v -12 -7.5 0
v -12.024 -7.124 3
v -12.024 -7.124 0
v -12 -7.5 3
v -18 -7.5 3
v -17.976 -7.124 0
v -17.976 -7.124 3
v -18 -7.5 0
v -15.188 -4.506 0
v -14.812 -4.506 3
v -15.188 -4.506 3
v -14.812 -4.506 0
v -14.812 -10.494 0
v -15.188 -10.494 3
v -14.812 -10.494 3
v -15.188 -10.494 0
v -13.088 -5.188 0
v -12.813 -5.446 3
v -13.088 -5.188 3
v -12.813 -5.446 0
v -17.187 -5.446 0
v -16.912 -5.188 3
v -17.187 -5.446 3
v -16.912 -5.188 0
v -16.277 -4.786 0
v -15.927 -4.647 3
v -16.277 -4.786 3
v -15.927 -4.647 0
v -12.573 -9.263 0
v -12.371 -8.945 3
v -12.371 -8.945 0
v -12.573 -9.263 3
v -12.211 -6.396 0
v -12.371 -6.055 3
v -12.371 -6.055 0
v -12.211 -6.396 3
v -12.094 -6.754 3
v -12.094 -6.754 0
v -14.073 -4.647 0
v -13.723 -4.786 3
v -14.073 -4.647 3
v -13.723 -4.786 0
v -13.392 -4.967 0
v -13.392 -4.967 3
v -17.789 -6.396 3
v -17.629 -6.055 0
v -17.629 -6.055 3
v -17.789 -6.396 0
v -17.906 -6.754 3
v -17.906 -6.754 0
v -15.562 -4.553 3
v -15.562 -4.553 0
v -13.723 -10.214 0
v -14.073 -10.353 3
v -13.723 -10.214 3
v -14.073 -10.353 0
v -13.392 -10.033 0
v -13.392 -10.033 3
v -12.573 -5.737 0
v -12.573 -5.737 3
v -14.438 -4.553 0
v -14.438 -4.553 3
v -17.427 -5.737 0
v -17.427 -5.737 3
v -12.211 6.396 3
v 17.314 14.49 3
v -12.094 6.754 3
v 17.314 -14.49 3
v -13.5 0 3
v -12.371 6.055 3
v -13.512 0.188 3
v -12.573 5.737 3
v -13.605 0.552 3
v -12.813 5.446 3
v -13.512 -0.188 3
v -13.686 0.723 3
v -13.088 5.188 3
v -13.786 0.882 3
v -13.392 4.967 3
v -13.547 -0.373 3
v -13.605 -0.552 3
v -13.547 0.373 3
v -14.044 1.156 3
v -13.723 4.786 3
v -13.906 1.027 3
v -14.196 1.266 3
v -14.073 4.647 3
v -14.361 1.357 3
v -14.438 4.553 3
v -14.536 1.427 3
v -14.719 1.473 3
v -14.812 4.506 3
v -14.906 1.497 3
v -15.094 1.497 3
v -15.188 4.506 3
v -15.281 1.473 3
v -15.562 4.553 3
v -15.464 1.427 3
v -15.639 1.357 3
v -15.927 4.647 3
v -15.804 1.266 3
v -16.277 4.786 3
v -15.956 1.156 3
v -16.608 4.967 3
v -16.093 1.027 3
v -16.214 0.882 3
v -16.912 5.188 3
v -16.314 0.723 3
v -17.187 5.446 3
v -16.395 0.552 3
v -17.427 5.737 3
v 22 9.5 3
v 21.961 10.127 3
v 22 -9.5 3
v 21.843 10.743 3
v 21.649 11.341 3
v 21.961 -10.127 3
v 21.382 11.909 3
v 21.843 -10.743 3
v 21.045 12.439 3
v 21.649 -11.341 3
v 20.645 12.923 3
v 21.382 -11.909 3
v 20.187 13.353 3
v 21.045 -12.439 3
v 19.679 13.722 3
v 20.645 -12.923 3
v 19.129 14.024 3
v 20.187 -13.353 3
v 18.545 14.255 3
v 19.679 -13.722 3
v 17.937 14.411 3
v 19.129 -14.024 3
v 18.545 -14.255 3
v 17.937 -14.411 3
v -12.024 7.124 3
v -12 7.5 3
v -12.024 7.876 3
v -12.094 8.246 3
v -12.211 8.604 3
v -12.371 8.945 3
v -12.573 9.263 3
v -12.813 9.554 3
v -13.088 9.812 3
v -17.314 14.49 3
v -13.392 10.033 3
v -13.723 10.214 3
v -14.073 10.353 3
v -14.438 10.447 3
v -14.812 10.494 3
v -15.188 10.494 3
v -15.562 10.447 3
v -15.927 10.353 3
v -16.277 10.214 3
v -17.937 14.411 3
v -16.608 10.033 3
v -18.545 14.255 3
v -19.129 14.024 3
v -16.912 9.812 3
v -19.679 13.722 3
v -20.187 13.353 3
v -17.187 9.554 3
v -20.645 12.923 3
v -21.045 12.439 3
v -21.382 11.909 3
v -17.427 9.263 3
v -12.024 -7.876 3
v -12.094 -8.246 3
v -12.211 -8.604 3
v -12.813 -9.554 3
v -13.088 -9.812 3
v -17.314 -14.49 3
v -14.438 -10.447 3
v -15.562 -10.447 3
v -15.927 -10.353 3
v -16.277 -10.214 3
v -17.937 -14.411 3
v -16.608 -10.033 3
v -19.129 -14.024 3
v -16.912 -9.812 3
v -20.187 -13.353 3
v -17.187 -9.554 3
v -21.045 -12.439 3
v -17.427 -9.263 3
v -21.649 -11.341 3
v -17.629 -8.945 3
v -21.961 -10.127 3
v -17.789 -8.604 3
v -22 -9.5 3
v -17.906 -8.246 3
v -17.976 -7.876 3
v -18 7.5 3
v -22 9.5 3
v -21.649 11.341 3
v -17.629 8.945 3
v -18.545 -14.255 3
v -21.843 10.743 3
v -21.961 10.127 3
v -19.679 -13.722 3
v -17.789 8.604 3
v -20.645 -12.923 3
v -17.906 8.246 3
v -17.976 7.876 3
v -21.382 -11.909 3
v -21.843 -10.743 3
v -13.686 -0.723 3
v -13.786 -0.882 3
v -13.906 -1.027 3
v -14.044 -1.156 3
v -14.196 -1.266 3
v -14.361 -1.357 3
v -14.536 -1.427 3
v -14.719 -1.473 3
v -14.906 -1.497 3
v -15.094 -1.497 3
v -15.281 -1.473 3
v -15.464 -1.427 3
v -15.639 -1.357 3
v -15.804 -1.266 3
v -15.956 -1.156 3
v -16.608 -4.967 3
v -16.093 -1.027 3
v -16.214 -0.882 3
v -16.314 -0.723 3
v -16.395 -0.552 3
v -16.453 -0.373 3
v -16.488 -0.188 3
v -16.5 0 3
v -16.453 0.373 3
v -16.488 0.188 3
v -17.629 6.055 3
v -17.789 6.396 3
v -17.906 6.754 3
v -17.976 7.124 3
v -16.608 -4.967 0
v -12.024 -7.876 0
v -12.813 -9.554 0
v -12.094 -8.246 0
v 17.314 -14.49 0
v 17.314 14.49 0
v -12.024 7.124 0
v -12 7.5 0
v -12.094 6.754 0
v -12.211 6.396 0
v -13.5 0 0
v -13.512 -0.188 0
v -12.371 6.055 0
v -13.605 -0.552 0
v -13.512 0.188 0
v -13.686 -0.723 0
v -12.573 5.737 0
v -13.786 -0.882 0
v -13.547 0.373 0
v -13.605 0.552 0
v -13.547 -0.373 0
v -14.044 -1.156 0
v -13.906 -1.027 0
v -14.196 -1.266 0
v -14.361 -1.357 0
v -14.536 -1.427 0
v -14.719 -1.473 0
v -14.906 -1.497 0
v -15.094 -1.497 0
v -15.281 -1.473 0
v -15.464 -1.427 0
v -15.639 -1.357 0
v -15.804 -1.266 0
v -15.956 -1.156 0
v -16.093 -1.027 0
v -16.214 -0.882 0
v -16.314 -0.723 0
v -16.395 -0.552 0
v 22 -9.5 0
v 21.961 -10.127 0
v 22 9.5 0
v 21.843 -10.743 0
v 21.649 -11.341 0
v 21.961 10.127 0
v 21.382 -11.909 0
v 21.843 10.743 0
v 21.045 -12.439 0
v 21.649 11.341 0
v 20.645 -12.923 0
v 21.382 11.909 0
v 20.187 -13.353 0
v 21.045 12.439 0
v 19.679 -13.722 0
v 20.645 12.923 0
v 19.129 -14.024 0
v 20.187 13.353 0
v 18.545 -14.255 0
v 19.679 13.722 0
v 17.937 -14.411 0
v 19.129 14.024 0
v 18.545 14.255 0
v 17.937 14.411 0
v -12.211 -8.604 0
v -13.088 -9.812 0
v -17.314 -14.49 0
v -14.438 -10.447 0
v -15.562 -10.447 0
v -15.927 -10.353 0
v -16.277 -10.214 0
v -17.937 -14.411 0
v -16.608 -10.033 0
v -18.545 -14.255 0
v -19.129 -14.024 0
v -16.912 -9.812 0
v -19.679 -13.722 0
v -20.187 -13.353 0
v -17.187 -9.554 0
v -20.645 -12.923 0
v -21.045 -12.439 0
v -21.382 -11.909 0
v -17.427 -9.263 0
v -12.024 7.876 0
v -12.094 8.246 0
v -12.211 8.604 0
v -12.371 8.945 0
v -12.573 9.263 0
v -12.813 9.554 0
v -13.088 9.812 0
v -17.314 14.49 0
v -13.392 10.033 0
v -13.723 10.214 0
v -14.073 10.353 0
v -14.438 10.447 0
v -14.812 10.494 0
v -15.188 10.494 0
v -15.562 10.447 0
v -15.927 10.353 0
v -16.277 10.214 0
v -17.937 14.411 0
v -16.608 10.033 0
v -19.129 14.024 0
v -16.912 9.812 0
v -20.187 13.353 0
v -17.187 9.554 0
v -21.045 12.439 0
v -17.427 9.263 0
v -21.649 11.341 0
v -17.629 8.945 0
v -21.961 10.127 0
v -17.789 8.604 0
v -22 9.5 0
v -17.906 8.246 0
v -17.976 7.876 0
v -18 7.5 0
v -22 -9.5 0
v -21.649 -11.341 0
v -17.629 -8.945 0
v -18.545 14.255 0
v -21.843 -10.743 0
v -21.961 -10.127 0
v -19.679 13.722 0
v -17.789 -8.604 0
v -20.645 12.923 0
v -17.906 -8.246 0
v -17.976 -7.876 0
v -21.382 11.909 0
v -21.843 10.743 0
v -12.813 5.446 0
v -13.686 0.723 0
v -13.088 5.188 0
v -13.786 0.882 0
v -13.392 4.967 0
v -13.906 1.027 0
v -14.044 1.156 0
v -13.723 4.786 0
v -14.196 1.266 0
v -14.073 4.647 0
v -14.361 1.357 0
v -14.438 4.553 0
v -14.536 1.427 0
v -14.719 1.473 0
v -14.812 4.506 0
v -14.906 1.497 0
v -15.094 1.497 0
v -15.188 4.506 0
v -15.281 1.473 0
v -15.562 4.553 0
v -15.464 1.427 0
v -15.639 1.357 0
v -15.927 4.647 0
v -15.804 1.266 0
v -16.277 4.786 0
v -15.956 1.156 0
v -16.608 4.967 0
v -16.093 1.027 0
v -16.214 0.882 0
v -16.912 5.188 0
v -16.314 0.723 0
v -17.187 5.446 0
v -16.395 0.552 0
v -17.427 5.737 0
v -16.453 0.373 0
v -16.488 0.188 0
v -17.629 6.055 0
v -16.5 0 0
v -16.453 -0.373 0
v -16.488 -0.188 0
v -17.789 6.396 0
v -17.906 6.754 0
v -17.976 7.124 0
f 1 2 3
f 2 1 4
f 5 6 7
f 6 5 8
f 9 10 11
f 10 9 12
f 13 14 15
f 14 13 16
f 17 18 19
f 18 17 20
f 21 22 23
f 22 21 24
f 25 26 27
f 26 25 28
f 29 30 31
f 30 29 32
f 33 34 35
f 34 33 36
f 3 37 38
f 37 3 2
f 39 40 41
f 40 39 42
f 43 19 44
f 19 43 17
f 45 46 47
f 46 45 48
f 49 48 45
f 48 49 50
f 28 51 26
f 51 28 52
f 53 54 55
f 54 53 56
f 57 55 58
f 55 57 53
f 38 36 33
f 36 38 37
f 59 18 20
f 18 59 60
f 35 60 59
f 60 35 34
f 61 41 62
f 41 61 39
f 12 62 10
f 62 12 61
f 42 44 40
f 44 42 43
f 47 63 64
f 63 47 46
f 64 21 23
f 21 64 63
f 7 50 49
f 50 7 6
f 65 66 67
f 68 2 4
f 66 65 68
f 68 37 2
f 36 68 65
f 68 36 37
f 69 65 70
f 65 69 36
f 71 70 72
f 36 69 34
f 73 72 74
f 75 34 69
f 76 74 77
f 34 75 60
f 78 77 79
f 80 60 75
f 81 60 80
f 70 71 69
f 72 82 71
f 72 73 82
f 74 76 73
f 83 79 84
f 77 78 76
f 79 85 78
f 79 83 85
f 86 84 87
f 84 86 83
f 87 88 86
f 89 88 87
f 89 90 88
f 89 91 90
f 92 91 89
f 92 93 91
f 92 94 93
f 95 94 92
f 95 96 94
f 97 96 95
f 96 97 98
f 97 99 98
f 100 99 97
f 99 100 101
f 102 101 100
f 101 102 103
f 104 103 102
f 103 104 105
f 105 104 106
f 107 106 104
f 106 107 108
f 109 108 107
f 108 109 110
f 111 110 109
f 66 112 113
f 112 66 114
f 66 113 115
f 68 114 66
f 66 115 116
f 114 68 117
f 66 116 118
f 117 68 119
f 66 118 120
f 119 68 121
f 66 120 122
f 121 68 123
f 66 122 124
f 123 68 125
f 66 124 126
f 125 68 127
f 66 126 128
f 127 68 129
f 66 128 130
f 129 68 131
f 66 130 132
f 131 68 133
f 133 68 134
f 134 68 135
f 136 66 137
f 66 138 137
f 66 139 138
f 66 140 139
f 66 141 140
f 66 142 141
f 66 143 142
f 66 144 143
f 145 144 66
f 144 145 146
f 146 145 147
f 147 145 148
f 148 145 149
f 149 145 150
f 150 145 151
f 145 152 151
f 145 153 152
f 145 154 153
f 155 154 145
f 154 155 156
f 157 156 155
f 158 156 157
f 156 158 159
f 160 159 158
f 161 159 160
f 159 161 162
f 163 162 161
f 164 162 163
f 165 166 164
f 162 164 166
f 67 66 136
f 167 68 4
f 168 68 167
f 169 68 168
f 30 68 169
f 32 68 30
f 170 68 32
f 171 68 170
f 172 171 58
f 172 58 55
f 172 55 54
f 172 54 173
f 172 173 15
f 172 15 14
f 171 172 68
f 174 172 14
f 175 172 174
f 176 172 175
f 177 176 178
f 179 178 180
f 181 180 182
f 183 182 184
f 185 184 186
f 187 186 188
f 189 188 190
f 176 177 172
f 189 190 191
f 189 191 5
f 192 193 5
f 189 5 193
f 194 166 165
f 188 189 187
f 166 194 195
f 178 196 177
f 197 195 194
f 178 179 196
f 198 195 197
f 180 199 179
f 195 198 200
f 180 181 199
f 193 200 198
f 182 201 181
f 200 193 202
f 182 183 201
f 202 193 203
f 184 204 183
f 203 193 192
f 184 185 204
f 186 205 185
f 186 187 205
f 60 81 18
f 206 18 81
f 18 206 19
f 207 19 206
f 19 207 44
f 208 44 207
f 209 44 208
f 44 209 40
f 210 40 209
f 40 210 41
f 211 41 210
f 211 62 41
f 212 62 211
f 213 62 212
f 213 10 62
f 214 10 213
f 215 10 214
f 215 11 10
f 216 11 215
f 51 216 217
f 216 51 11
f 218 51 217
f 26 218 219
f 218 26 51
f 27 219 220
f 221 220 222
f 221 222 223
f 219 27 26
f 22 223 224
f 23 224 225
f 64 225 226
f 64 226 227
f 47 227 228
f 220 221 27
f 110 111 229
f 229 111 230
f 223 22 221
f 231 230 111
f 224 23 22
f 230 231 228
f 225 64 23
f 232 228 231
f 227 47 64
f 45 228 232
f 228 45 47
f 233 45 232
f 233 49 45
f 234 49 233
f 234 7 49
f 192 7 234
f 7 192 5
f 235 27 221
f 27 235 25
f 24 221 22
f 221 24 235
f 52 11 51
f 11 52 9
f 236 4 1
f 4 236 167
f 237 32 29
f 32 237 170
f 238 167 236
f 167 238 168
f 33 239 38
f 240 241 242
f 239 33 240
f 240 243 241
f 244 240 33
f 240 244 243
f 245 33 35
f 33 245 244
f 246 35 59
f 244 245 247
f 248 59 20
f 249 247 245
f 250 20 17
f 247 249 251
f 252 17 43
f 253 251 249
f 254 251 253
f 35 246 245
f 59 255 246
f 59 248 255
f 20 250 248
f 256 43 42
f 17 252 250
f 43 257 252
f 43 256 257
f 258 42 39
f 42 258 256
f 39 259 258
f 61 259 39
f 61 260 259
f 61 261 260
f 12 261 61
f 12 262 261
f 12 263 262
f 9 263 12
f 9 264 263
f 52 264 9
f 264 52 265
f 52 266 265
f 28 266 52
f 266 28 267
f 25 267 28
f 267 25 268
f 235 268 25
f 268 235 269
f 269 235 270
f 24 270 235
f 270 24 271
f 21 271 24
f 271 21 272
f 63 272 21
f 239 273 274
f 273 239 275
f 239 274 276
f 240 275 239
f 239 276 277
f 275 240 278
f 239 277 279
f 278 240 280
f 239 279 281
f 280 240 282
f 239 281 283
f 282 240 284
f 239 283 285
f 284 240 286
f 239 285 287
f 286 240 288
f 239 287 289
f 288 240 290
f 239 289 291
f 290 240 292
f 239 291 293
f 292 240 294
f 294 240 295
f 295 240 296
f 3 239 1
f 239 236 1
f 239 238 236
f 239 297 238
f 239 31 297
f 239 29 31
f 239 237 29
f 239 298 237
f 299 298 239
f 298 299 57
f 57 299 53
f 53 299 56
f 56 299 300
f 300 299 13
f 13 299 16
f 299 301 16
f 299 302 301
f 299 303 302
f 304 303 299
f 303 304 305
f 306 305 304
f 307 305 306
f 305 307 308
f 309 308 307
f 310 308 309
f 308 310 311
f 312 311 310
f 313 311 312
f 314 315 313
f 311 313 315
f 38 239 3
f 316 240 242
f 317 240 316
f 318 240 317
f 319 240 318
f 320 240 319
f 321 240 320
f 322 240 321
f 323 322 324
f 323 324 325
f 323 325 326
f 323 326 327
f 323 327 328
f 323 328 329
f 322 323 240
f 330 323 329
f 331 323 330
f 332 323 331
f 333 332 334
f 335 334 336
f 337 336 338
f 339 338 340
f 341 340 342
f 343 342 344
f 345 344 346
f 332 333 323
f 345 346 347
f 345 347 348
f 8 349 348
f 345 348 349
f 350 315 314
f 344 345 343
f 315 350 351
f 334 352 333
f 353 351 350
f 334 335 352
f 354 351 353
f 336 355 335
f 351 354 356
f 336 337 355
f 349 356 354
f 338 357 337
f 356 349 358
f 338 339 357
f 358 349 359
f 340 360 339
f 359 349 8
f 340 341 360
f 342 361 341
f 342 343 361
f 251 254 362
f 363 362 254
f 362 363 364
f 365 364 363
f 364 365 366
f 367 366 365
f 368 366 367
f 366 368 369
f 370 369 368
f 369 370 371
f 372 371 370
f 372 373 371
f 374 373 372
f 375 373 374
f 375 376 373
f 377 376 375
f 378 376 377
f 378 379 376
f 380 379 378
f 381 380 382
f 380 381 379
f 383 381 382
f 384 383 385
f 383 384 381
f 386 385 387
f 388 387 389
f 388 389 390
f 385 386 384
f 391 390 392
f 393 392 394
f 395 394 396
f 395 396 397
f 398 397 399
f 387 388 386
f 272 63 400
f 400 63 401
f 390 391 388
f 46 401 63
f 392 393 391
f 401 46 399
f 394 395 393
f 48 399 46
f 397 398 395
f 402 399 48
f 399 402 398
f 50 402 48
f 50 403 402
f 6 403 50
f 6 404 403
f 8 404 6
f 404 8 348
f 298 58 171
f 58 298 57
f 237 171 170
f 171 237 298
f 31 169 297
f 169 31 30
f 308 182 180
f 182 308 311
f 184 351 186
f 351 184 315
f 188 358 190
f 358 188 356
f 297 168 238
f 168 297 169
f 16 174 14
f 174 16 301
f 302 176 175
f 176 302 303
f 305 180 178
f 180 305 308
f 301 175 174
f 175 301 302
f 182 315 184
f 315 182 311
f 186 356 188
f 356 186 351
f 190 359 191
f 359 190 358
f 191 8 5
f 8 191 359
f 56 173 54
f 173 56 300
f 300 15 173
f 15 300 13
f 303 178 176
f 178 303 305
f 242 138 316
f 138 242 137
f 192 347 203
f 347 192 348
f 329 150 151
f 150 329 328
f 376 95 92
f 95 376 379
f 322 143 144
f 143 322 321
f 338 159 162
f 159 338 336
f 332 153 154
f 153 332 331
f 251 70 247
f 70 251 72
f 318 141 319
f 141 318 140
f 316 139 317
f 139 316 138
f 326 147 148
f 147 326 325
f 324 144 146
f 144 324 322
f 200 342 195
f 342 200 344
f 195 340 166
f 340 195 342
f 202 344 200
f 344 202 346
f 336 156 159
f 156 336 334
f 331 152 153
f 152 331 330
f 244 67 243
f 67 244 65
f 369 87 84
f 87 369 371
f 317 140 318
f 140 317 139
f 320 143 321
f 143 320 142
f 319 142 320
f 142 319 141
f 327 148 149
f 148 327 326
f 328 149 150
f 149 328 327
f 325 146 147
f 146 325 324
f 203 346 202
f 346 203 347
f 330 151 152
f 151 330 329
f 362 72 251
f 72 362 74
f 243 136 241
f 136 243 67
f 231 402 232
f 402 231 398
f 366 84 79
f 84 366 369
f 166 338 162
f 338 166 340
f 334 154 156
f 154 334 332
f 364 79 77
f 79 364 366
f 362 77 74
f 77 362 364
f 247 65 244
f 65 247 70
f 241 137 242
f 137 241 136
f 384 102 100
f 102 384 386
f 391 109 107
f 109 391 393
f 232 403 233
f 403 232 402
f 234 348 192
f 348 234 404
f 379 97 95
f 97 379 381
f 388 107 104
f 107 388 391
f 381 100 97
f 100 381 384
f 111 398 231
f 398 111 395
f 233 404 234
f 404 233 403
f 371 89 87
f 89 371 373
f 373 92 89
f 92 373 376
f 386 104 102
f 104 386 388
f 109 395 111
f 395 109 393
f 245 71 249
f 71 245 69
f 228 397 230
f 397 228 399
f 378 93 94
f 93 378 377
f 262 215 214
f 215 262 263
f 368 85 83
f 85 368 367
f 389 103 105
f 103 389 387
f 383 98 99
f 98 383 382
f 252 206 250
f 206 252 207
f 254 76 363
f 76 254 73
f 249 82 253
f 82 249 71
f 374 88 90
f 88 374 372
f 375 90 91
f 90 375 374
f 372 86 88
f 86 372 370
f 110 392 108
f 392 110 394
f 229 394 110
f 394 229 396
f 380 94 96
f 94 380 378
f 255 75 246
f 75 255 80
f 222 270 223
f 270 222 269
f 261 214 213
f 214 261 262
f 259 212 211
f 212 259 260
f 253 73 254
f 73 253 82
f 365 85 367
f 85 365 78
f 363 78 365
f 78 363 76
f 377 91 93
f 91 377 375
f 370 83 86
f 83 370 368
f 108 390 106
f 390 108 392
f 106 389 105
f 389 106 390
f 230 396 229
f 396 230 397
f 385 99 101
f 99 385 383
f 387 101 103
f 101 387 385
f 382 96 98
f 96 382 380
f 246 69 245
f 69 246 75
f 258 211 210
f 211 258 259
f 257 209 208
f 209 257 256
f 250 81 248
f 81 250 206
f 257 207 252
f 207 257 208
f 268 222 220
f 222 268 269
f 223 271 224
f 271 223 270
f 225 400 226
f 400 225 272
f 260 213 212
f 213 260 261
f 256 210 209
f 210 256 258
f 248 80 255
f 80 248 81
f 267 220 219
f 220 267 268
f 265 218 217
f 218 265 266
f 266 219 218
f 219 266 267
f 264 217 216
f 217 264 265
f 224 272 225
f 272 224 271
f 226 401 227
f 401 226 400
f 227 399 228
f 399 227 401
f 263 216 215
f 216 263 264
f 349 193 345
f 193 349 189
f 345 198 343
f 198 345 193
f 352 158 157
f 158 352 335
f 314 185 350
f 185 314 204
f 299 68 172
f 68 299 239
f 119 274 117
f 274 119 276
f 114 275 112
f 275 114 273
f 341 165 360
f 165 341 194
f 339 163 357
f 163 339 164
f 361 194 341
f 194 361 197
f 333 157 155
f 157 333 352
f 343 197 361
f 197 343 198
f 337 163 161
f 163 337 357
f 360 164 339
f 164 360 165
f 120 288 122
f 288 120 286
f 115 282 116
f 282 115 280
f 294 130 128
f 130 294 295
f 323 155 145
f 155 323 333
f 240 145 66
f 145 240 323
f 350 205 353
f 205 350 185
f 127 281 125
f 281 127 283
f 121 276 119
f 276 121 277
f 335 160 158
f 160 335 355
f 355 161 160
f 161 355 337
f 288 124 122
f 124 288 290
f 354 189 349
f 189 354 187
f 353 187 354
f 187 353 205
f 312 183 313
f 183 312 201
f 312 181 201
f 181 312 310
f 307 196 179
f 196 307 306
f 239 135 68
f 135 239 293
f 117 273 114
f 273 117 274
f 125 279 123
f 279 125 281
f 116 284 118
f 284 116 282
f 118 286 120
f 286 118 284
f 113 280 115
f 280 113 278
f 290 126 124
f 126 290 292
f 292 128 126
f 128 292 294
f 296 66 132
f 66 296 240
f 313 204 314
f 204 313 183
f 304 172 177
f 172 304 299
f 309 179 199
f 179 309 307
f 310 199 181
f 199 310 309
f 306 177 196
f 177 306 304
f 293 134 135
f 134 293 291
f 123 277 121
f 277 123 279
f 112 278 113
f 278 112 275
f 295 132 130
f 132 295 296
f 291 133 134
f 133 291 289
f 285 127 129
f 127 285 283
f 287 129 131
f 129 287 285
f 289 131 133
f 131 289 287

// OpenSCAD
$fn = 50;


difference() {
	union() {
		hull() {
			translate(v = [-17.0000000000, 9.5000000000, 0]) {
				cylinder(h = 3, r = 5);
			}
			translate(v = [17.0000000000, 9.5000000000, 0]) {
				cylinder(h = 3, r = 5);
			}
			translate(v = [-17.0000000000, -9.5000000000, 0]) {
				cylinder(h = 3, r = 5);
			}
			translate(v = [17.0000000000, -9.5000000000, 0]) {
				cylinder(h = 3, r = 5);
			}
		}
	}
	union() {
		translate(v = [-15.0000000000, -7.5000000000, 0]) {
			cylinder(h = 3, r = 3.0000000000);
		}
		translate(v = [-15.0000000000, 7.5000000000, 0]) {
			cylinder(h = 3, r = 3.0000000000);
		}
		translate(v = [-15.0000000000, -7.5000000000, 0]) {
			cylinder(h = 3, r = 1.5000000000);
		}
		translate(v = [-15.0000000000, 0.0000000000, 0]) {
			cylinder(h = 3, r = 1.5000000000);
		}
		translate(v = [-15.0000000000, 7.5000000000, 0]) {
			cylinder(h = 3, r = 1.5000000000);
		}
		translate(v = [-15.0000000000, -7.5000000000, 0]) {
			cylinder(h = 3, r = 1.5000000000);
		}
		translate(v = [-15.0000000000, 0.0000000000, 0]) {
			cylinder(h = 3, r = 1.5000000000);
		}
		translate(v = [-15.0000000000, 7.5000000000, 0]) {
			cylinder(h = 3, r = 1.5000000000);
		}
		translate(v = [-15.0000000000, -7.5000000000, 0]) {
			cylinder(h = 3, r = 1.5000000000);
		}
		translate(v = [-15.0000000000, 0.0000000000, 0]) {
			cylinder(h = 3, r = 1.5000000000);
		}
		translate(v = [-15.0000000000, 7.5000000000, 0]) {
			cylinder(h = 3, r = 1.5000000000);
		}
	}
}
